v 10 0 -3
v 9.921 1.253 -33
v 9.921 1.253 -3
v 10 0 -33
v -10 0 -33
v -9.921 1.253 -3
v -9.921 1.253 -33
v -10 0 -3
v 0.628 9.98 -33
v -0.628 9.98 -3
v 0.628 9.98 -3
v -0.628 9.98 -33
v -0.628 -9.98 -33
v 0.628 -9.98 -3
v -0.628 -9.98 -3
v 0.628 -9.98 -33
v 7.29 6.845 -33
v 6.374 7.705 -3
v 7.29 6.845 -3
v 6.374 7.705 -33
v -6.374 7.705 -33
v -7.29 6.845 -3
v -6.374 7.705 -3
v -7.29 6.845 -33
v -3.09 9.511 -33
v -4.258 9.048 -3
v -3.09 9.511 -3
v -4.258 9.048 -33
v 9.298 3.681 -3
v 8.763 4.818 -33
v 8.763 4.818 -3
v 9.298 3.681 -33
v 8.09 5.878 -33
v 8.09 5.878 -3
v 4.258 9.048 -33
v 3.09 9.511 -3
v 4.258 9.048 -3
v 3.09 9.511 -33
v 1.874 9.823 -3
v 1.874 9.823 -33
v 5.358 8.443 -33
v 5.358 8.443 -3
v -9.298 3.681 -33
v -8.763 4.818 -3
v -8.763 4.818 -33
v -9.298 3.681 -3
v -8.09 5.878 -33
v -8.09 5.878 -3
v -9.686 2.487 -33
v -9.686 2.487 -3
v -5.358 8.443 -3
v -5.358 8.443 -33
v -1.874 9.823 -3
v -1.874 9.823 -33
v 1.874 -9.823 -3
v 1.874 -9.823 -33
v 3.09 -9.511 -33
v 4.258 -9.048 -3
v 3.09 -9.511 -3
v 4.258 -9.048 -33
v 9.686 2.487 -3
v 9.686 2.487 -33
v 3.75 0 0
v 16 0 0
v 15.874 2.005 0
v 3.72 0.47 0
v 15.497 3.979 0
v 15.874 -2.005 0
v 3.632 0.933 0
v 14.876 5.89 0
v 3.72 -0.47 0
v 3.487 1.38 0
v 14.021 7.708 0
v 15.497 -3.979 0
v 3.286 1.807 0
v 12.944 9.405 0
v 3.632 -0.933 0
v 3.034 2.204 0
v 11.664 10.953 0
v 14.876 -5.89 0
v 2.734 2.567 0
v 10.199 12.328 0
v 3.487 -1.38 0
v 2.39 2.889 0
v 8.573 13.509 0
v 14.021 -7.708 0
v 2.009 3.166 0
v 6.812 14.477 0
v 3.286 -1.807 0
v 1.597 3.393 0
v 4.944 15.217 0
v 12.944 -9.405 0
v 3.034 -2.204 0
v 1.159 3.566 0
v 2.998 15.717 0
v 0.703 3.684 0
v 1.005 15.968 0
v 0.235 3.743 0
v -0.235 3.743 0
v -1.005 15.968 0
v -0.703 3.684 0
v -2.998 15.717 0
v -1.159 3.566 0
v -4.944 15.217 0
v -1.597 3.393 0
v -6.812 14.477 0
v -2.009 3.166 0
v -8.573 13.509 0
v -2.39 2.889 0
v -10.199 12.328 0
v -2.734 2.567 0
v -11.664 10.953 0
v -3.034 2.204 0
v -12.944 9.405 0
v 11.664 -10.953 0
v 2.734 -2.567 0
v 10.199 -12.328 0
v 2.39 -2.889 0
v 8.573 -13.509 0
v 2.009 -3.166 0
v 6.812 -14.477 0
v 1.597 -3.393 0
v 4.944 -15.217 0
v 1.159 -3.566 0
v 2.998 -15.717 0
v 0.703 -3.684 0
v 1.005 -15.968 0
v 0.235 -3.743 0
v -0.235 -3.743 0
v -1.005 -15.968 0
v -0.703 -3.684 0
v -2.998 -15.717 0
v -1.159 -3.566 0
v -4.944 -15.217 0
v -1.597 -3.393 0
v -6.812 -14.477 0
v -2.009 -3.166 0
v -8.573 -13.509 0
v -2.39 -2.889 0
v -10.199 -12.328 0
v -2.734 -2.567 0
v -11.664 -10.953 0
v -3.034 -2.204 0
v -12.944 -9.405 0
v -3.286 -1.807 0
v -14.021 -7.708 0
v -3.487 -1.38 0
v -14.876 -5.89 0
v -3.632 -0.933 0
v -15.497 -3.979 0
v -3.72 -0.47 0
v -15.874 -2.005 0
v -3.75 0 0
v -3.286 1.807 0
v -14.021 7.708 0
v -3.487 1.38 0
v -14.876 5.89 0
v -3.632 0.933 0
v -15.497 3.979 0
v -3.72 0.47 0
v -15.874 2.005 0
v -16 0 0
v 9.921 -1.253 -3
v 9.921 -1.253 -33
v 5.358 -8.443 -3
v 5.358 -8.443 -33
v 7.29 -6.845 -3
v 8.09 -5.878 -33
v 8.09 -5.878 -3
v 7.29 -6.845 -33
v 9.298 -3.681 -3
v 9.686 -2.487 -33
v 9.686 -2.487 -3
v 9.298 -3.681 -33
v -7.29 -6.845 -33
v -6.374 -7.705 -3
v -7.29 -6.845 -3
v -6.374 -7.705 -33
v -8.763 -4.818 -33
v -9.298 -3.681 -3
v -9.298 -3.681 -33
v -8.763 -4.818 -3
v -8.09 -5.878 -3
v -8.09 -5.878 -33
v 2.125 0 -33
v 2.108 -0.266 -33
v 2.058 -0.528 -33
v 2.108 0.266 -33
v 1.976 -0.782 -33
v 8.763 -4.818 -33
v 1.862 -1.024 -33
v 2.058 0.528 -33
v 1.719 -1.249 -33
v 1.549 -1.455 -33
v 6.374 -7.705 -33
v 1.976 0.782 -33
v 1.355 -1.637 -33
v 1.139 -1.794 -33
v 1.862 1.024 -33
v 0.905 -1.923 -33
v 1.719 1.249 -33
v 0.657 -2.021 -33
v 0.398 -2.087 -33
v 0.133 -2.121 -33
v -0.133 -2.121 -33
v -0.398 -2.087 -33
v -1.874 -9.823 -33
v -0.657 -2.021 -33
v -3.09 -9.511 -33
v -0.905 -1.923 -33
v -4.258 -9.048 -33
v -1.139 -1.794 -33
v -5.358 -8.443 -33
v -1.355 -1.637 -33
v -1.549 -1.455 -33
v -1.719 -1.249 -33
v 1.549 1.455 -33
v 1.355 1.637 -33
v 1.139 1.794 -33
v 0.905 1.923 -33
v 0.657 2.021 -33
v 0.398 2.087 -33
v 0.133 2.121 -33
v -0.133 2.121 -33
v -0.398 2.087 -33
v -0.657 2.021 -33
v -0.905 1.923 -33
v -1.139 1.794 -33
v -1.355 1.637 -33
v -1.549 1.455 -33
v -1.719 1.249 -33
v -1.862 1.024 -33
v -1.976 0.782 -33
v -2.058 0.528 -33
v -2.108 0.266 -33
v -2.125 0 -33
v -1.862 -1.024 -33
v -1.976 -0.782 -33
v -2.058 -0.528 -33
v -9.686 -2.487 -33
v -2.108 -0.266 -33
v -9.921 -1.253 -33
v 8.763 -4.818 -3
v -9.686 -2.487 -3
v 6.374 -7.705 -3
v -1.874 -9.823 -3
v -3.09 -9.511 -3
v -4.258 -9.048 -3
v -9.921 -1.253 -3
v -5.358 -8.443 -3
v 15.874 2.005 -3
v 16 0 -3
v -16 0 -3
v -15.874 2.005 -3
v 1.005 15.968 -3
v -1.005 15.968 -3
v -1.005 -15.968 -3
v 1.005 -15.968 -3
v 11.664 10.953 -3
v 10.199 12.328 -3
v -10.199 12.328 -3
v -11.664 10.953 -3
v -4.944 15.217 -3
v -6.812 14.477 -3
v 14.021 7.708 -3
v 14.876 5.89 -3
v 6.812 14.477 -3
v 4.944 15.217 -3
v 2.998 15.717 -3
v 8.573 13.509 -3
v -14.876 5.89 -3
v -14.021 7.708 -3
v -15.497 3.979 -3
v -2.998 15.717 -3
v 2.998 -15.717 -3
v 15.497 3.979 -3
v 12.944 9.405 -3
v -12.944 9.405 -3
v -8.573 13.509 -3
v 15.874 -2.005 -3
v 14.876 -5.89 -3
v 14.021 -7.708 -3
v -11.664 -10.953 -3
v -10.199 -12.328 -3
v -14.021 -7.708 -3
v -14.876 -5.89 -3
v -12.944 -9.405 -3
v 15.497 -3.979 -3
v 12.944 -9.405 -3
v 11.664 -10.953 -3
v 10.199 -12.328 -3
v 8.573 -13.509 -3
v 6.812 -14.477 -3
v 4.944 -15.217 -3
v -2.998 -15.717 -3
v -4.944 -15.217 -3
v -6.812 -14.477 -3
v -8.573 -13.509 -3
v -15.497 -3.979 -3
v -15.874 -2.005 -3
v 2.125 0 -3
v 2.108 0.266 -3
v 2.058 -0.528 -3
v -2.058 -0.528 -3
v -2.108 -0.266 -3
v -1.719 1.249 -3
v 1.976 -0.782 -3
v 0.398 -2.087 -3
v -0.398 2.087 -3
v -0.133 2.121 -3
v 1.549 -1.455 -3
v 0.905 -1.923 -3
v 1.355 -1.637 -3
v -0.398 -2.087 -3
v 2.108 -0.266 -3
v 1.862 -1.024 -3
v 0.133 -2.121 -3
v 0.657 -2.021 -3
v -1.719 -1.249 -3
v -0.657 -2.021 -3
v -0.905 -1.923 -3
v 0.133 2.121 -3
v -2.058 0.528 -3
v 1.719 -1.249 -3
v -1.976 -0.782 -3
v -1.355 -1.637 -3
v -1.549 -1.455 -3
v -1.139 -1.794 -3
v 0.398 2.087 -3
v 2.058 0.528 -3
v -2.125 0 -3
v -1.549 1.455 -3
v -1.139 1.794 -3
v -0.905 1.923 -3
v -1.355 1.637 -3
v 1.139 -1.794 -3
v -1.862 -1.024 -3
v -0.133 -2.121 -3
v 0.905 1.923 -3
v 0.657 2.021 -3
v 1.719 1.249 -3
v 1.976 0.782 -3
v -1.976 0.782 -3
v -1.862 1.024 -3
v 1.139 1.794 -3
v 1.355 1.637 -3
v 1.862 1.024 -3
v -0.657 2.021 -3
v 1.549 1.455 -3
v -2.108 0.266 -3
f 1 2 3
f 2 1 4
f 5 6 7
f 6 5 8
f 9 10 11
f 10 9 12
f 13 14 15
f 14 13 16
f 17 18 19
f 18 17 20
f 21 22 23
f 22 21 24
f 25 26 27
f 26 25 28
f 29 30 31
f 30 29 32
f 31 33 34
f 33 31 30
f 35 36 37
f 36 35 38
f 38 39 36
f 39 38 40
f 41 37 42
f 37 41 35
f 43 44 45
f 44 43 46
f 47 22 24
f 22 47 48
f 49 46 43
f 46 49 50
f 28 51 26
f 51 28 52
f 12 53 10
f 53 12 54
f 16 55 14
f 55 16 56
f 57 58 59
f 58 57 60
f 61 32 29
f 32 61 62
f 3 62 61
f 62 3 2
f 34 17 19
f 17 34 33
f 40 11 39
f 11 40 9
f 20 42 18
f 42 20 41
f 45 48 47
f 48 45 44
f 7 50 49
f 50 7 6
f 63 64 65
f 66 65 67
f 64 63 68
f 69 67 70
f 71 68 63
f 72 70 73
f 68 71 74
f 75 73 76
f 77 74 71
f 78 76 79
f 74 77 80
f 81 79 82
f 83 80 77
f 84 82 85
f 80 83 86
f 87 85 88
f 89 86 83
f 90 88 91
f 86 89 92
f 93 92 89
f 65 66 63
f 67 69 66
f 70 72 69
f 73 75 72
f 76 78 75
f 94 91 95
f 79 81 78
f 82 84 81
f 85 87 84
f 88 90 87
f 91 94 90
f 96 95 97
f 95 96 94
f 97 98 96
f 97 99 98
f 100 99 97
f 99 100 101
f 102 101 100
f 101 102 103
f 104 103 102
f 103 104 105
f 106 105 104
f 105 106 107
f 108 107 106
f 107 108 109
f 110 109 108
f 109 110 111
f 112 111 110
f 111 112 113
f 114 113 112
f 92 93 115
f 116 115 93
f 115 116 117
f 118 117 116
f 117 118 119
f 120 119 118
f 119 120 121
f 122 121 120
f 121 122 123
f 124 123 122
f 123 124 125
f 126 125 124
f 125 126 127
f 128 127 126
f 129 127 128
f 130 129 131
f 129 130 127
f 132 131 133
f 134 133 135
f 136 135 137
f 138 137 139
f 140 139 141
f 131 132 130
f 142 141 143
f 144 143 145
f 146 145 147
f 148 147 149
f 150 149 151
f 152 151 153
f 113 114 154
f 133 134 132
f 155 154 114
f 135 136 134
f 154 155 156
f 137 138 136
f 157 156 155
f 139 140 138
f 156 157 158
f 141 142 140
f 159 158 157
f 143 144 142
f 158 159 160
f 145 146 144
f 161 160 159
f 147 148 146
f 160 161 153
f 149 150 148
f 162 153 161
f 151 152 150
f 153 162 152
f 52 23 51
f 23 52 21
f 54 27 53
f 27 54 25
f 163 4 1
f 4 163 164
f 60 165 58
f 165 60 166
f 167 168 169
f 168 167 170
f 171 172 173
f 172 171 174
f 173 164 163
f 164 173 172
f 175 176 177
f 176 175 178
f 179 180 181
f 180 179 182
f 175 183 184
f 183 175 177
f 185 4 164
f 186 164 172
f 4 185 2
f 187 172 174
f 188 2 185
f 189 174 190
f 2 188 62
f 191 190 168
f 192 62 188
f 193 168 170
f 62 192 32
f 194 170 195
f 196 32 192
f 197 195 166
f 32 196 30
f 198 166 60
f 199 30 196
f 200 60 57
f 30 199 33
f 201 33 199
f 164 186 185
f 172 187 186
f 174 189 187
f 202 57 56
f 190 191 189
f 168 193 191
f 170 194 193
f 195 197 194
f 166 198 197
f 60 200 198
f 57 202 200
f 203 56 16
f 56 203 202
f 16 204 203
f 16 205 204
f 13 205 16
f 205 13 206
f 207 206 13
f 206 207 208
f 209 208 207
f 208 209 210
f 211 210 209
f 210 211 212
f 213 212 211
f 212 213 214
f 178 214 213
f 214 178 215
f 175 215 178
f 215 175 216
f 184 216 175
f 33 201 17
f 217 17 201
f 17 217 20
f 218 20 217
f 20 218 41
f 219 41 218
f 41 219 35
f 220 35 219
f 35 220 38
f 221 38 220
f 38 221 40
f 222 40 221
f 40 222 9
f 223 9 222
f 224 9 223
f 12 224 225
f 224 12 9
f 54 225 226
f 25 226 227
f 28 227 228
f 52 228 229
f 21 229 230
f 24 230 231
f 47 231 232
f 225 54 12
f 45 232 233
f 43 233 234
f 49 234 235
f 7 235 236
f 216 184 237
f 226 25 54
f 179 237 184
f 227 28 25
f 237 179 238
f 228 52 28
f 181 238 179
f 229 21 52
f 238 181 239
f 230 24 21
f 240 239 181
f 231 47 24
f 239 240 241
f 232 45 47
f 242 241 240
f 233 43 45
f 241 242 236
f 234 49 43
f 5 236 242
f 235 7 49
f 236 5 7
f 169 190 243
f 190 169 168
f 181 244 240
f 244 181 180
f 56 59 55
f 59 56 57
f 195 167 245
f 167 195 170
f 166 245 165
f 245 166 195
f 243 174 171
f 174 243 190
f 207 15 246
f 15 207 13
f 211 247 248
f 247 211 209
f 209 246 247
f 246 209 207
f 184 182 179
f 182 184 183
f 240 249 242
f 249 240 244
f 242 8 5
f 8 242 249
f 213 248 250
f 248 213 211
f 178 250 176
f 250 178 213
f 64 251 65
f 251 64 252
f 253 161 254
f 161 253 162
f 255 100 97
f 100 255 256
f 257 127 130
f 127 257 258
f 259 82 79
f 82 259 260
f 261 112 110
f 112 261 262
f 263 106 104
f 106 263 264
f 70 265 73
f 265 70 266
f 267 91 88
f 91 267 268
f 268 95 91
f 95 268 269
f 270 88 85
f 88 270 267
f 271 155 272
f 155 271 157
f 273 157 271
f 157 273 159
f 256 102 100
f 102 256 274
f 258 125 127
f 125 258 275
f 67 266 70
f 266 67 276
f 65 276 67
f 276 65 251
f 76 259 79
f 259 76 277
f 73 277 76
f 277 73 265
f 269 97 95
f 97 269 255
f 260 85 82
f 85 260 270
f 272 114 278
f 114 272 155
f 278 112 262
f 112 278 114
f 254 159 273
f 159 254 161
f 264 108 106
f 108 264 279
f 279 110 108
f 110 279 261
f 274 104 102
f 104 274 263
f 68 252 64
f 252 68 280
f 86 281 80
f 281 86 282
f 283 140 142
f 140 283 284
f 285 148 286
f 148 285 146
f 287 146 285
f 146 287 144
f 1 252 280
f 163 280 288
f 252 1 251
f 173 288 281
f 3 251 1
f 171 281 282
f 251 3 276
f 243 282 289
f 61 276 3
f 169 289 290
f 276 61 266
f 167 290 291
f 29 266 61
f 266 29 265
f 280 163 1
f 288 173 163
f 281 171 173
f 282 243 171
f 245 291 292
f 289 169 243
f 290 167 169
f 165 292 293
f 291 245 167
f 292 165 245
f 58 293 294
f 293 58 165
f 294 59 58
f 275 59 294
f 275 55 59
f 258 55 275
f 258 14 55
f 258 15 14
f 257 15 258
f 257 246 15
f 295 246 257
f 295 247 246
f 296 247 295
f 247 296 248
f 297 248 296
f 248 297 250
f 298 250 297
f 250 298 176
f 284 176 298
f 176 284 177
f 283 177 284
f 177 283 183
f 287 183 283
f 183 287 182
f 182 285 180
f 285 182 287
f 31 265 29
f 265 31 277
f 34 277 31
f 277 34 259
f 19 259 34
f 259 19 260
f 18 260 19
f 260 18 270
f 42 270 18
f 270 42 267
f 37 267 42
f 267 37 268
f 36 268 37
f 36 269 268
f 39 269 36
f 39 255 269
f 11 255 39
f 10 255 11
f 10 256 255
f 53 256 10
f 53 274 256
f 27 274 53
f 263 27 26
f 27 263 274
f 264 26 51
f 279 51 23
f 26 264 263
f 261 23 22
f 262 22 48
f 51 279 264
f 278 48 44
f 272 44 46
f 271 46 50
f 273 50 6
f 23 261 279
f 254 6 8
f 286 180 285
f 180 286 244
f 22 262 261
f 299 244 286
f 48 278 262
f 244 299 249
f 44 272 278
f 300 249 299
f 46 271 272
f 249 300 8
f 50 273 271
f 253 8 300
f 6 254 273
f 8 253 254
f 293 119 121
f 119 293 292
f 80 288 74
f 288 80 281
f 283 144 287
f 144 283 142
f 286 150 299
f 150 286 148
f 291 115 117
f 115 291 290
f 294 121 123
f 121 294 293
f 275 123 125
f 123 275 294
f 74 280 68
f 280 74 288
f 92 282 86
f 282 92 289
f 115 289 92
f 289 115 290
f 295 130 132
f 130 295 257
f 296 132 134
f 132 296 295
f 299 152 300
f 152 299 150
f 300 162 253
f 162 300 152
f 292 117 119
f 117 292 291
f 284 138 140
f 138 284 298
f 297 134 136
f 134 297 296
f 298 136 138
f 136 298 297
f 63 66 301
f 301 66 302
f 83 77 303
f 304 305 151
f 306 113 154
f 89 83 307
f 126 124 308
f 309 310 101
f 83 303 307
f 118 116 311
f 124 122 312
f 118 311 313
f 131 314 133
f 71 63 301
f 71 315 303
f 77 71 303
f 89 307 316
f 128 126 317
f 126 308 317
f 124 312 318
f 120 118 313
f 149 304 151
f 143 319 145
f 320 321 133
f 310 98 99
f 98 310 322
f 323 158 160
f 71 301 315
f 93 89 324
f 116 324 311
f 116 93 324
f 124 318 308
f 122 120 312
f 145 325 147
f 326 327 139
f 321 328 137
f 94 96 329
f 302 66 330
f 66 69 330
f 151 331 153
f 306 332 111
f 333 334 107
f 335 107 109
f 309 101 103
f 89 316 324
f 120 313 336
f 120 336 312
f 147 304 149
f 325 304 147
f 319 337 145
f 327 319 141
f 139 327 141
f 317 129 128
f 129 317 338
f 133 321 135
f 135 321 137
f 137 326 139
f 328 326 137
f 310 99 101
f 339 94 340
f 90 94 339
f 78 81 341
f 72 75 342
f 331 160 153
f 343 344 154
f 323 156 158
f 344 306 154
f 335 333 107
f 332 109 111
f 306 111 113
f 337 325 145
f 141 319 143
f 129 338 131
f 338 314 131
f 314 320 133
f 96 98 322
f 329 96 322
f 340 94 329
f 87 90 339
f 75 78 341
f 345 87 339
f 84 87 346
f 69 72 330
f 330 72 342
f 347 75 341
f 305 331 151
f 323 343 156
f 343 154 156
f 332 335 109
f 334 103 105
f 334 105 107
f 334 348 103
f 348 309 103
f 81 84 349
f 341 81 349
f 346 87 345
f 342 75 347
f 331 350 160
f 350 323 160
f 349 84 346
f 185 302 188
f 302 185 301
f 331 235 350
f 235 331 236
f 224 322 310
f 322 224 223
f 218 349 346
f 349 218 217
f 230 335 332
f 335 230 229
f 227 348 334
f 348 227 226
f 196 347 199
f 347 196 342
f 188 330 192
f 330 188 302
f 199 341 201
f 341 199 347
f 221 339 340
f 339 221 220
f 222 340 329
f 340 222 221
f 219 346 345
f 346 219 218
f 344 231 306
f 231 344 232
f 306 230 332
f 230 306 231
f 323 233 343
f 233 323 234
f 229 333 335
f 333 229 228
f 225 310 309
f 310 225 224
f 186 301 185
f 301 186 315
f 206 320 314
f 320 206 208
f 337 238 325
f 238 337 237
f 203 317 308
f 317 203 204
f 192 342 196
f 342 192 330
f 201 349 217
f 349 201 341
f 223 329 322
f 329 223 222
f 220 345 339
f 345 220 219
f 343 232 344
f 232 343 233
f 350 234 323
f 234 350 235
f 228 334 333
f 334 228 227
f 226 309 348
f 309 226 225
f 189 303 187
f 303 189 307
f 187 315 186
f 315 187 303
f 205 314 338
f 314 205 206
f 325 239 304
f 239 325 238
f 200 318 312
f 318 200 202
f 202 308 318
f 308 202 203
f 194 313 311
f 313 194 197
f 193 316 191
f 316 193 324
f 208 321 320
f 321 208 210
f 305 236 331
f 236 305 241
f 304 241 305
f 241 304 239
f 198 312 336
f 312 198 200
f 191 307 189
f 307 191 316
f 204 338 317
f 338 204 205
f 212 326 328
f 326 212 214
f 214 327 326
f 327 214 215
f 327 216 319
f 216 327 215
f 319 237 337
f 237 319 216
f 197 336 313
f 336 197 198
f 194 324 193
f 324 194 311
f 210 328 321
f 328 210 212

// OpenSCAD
$fn = 50;


difference() {
	union() {
		translate(v = [0, 0, -33.0000000000]) {
			cylinder(h = 33, r = 10.0000000000);
		}
		translate(v = [0, 0, -3.0000000000]) {
			cylinder(h = 3, r = 16.0000000000);
		}
	}
	union() {
		translate(v = [0, 0, 0]) {
			rotate(a = [0, 0, 0]) {
				difference() {
					union() {
						#translate(v = [0, 0, -33.0000000000]) {
							cylinder(h = 33, r = 2.0000000000);
						}
						#translate(v = [0, 0, -3]) {
							cylinder(h = 3, r1 = 2.1250000000, r2 = 3.7500000000);
						}
						#translate(v = [0, 0, -33.0000000000]) {
							cylinder(h = 33, r = 2.1250000000);
						}
						#translate(v = [0, 0, -33.0000000000]) {
							cylinder(h = 33, r = 2.0000000000);
						}
					}
					union();
				}
			}
		}
	}
}
